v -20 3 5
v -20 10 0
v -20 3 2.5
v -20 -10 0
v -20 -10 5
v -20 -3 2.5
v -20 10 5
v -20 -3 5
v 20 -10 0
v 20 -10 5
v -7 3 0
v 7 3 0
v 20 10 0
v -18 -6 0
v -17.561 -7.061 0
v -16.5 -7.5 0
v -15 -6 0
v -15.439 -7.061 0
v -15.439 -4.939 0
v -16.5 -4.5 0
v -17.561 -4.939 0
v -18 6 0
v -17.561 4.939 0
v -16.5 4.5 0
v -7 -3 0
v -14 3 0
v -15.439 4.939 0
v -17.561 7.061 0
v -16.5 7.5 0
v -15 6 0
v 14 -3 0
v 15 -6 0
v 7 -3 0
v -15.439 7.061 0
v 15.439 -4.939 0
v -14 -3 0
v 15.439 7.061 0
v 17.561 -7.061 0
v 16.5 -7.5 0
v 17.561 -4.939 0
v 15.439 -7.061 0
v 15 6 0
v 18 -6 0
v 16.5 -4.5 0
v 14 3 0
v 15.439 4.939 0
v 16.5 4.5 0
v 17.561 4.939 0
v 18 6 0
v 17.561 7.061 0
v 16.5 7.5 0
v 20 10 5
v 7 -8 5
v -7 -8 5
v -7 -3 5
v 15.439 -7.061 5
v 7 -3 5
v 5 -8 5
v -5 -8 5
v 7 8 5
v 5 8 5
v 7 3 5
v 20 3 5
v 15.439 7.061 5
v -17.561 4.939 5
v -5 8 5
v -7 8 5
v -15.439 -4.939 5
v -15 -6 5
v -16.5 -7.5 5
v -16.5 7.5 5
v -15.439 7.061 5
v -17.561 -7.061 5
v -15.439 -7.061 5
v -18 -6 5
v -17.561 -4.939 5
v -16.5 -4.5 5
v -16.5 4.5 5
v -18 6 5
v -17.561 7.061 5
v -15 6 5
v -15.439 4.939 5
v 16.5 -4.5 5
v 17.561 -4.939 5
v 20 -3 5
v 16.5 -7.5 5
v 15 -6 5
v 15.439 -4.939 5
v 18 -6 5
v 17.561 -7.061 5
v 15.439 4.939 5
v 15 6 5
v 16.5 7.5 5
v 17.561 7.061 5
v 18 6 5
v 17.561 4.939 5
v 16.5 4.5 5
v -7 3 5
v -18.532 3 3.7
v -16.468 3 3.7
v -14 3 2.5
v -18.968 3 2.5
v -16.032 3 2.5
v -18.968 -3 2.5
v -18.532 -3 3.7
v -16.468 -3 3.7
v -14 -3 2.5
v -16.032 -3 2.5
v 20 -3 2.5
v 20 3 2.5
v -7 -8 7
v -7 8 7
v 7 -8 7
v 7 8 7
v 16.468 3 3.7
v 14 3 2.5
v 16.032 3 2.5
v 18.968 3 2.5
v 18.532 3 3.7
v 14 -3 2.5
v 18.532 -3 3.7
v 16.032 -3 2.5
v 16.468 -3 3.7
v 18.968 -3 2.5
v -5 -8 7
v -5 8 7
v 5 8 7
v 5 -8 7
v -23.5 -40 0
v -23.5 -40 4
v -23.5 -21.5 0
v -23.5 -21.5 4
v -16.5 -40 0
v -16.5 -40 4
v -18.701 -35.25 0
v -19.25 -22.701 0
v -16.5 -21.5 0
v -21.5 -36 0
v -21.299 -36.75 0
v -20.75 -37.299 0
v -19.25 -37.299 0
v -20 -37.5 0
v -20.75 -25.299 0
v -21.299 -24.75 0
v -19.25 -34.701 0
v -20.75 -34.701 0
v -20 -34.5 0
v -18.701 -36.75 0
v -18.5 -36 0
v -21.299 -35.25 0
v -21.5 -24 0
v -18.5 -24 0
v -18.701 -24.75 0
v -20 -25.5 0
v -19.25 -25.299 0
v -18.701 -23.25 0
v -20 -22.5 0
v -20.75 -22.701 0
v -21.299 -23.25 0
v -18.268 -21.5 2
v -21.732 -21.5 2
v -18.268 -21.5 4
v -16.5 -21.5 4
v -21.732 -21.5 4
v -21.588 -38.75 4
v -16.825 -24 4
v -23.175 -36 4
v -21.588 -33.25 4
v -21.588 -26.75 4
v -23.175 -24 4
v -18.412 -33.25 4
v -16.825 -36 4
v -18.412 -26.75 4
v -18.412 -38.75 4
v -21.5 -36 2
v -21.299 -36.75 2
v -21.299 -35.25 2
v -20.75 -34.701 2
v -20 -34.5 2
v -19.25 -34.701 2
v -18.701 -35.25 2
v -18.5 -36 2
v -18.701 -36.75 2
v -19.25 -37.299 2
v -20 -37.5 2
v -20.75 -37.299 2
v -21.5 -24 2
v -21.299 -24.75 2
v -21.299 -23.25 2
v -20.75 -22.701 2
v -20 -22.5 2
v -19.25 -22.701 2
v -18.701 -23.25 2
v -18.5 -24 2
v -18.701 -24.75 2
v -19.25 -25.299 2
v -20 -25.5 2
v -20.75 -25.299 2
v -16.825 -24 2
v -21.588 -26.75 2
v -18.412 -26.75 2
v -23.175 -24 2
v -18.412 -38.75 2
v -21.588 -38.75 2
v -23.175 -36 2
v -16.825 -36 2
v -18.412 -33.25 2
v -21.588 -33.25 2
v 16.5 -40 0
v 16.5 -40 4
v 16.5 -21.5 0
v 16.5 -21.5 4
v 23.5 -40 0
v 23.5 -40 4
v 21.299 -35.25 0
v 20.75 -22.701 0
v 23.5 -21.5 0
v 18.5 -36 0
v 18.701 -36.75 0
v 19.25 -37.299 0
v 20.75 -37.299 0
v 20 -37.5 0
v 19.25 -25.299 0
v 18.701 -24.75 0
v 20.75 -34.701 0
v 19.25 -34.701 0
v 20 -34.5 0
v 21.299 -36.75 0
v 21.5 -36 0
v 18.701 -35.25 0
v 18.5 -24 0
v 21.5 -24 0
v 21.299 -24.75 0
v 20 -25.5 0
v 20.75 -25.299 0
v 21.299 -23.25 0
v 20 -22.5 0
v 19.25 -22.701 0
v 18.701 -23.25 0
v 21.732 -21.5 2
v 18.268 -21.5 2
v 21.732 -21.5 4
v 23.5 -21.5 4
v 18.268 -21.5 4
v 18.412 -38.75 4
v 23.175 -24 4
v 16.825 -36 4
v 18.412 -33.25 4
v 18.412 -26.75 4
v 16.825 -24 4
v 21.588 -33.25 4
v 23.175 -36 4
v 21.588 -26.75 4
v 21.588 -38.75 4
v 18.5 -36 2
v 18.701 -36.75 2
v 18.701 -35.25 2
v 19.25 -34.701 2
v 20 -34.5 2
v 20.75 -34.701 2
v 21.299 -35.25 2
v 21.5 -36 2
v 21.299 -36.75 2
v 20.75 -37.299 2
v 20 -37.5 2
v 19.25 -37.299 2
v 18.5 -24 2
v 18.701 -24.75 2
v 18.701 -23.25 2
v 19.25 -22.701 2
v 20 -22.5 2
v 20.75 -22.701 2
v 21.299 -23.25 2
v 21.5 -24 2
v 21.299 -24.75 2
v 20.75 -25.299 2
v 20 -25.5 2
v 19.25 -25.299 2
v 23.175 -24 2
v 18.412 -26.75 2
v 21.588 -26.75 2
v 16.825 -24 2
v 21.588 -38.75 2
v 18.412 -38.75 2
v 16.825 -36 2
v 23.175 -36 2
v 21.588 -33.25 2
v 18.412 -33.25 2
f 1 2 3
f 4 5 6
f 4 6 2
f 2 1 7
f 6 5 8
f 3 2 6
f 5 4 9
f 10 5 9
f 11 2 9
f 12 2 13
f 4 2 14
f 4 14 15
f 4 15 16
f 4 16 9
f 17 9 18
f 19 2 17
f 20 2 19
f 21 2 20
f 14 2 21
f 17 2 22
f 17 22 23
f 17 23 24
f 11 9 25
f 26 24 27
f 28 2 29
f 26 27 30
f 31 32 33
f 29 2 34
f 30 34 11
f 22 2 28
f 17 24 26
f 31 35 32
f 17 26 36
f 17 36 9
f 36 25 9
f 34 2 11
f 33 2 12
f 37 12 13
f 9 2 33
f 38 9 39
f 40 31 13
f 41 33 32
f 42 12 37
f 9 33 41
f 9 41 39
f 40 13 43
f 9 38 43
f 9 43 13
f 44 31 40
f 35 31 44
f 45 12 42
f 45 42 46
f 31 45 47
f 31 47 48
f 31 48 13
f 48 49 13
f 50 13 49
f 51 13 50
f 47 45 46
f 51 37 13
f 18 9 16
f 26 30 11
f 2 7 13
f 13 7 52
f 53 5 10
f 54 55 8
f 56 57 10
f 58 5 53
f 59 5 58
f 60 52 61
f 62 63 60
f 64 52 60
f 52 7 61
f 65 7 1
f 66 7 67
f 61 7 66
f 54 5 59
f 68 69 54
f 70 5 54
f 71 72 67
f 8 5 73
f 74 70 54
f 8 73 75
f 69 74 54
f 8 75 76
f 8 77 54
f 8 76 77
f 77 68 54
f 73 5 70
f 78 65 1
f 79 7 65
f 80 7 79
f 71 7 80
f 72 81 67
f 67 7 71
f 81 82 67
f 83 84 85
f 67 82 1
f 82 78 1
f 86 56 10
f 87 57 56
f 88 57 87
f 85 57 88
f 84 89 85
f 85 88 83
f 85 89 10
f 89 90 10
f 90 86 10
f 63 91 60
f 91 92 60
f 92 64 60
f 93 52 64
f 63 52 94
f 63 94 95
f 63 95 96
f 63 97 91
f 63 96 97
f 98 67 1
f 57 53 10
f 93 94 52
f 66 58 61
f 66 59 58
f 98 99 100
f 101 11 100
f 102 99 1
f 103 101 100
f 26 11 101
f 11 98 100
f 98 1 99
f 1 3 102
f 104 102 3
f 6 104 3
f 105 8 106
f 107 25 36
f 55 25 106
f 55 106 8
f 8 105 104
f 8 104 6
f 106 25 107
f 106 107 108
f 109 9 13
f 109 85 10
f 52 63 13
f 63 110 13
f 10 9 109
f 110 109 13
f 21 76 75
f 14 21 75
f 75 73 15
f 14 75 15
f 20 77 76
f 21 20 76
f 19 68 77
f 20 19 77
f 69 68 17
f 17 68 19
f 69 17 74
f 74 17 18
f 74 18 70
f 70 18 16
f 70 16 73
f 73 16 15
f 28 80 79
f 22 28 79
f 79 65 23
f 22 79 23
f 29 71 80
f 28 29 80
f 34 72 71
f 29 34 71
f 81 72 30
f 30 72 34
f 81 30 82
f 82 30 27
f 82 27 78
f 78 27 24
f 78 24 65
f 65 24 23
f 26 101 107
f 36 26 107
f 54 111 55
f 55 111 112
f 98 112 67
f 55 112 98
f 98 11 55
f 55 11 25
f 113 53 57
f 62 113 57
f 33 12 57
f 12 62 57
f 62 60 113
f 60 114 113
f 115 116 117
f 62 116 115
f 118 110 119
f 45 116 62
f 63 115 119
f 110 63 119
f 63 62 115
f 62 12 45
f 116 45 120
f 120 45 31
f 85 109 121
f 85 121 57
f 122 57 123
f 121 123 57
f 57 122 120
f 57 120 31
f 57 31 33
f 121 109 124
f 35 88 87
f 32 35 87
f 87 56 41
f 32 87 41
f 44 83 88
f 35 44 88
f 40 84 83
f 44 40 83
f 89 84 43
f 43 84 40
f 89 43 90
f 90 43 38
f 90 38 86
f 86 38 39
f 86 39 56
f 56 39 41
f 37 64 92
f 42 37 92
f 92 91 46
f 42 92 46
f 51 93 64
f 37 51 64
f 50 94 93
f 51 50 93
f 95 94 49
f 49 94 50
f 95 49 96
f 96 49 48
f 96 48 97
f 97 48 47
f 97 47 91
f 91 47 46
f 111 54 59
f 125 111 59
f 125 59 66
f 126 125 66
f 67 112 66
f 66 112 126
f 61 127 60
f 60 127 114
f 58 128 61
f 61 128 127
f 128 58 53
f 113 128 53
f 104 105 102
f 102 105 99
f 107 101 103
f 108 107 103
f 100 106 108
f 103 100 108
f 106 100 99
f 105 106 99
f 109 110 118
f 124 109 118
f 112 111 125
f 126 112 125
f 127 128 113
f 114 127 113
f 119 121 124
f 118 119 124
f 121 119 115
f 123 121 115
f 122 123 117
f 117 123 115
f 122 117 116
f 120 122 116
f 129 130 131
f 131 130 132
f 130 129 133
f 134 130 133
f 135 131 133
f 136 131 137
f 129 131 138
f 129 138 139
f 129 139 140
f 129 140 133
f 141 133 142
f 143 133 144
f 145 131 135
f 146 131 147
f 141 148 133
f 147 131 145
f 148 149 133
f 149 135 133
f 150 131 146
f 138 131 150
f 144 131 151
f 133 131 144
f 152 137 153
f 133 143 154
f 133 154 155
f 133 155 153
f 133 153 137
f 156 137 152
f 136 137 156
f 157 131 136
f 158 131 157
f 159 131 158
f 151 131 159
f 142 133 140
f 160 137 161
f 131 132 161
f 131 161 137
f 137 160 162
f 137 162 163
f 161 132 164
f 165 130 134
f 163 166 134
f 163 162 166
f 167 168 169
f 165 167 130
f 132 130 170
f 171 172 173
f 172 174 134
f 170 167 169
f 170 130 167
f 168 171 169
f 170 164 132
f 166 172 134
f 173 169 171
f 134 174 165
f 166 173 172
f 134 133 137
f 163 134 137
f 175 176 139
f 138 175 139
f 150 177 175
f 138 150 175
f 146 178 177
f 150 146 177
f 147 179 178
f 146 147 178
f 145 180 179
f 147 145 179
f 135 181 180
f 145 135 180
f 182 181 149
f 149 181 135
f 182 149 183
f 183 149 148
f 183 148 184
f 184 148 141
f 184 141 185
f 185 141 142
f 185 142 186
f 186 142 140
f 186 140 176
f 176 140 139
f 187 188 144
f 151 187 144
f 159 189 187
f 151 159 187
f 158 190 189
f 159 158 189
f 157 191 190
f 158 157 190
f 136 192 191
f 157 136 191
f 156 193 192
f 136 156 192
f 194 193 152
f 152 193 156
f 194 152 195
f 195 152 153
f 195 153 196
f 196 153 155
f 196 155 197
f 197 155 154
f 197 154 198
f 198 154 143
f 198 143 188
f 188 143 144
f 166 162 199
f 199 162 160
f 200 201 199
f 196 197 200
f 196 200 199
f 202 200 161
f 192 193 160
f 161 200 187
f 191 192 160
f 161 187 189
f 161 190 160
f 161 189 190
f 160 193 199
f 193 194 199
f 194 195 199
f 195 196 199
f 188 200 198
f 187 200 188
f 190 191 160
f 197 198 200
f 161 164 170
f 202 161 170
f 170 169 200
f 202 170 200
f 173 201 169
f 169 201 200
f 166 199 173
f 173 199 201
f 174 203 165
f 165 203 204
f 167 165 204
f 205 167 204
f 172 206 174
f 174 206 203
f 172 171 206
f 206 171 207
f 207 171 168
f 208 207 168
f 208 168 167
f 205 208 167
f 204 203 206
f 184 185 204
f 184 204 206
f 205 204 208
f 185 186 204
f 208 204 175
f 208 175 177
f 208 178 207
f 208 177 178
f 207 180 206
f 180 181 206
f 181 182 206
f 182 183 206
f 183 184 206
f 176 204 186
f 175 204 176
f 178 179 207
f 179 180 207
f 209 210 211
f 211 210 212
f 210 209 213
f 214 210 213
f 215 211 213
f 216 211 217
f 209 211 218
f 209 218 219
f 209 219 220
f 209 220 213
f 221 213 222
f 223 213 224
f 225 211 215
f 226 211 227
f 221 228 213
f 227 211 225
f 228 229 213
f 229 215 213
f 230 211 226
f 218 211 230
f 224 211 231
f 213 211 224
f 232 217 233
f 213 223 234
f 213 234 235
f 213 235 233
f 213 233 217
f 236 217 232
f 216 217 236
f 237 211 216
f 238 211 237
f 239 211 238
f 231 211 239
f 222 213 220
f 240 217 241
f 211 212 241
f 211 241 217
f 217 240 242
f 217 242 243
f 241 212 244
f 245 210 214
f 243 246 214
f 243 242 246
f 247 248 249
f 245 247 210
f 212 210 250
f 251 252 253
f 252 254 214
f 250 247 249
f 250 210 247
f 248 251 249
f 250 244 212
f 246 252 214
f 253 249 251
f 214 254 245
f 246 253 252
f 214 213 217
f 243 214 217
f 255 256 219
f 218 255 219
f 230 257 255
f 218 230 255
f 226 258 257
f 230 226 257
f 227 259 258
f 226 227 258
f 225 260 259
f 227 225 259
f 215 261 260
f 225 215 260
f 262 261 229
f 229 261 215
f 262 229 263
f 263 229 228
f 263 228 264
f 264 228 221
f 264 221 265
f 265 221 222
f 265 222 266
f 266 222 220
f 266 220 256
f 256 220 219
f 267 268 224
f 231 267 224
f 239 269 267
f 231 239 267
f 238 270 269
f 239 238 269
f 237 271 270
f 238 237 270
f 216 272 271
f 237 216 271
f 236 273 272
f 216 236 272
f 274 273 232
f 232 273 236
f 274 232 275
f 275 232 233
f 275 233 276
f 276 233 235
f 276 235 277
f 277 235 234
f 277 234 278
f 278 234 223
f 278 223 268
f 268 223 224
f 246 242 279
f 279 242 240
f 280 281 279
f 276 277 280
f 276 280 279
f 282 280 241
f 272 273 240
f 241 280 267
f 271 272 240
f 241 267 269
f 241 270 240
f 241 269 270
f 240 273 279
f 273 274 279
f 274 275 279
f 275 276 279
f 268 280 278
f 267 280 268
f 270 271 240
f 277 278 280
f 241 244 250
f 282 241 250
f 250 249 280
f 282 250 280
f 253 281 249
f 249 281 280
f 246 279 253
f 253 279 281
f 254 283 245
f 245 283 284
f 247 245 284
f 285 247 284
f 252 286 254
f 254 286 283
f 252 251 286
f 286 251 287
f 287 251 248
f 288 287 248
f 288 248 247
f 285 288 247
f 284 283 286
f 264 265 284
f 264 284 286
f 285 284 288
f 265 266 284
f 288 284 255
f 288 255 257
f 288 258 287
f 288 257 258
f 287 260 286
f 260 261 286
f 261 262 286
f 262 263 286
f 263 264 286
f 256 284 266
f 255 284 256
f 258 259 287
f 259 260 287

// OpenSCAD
// file: ../ShapeLibrary/CounterSink.scad
// Vertical countersink with top of countersink centred on origin 
//
// od = overall diameter (for screw head)
// oh = overall height (screw + head +recesss)
// sd = screw diameter
// sh = screw height (to top of countersink)
module countersinkZ(od, oh, sd, sh)
{
    union()
    {
        intersection()
	    {
            translate([0,0,-sh]) cylinder(r=od/2, h=oh, $fn=12);
            translate([0,0,-od/2]) cylinder(r1=0, r2=oh+od/2, h=oh+od/2, $fn=12);
        }
    translate([0,0,-sh]) cylinder(r=sd/2, h=sh, $fn=12);
    }
}

// Countersink with screw directed along negative X-axis
module countersinkX(od, oh, sd, sh)
{
    rotate([0,90,0]) countersinkZ(od, oh, sd, sh);
}

// Countersink with screw directed along negative Y-axis
module countersinkY(od, oh, sd, sh)
{
    rotate([90,0,0]) countersinkZ(od, oh, sd, sh);
}


// Examples
countersinkZ(8, 20, 4, 10);

translate([0,15,0]) countersinkX(8, 20, 4, 10);

translate([15,0,0]) countersinkY(8, 20, 4, 10);
// file: ../ShapeLibrary/NutRecessNoCS.scad
// Vertical nut recess with base of nut centred on origin 
//
// af = nut size accross faces
// oh = overall height (screw + head + recesss)
// sd = screw diameter
// sh = screw height (to shoulder of nut recess)
module nutrecessZ(od, oh, sd, sh)
{
  sin60 = sin(60);
  union()
  {
    // % translate([0,0,oh-sh]) cylinder(r=od/sin60/2, h=5, $fn=12);
    // Square shoulder...
    //cylinder(r=od/sin60/2, h=oh-sh, $fn=6);
    // Angle shoulder at 45deg for printing...
    intersection()
    {
        translate([0,0,0]) cylinder(r=od/sin60/2, h=oh-sh, $fn=6);
        //translate([0,0,-((od/2)-(sd/2))/2])
        //  cylinder(r1=sd/2, r2=sd/2+(oh-sh), h=oh-sh, $fn=12);
    }
    translate([0,0,-sh]) cylinder(r=sd/2, h=oh, $fn=12);
  }
}

// Nut recess with screw directed along negative X-axis
module nutrecessX(od, oh, sd, sh)
{
    rotate([0,90,0]) nutrecessZ(od, oh, sd, sh);
}

// Nut recess with screw directed along negative Y-axis
module nutrecessY(od, oh, sd, sh)
{
    rotate([90,0,0]) nutrecessZ(od, oh, sd, sh);
}


// Examples
nutrecessZ(7, 20, 4, 10);

translate([0,15,0]) nutrecessX(7, 20, 4, 10);

translate([15,0,0]) nutrecessY(7, 20, 4, 10);
// main file
// Drive belt connector

use <../ShapeLibrary/NutRecessNoCS.scad>
use <../ShapeLibrary/CounterSink.scad>

// Tooth profile, tooth centred on origin
//
// p = pitch (tooth is half this)
// w = width
// h = height of tooth (extra is added at base)
// a = angle of tooth face
//
module Tooth(p, w, h, a)
{
    d = 0.1;
    difference()
    {
        translate([0,0,d/2])
            cube(size=[p, w, h+d], center=true);
        translate([p/4,0,0])
            rotate([0,a,0])
                translate([p/2,0,0])
                    cube(size=[p, w*2, h*4], center=true);
        translate([-p/4,0,0])
            rotate([0,-a,0])
                translate([-p/2,0,0])
                    cube(size=[p, w*2, h*4], center=true);
    }
}

//Tooth(5, 6, 1.2, 20);

// Tooth profile section of length l and width w, 
// Aligned with and centred on X axis, with teeth downwards
// touching X-Y plane
// can be subtracted from object to leave tooth profile.
//
// Per http://www.contitech.de/pages/produkte/antriebsriemen/antrieb-industrie/download/TD_Synchroflex_en.pdf
//   Tooth pitch = 5
//   Tooth andgle between faces = 40%
//   Tooth height = 1.2
//
module ToothProfileX(l, w)
{
    tp = 5;
    th = 1.2;
    ta = 20;
    translate([-l/2-tp/4, -w/2, th]) cube(size=[l+tp/2, w, 10]);
    for ( to = [ -l/2 : tp : l/2 ] )
    {
        translate([to,0,th/2]) Tooth(tp,w,th,ta);
    }
}

//ToothProfileX(80, 6);

// Belt connector base, aligned with X axis
//
// l   = overall length
// w   = overall width
// d   = overall thickness (depth)
// l1  = length attachment prong
// l2  = length locating ridge
// l3  = length belt hole 
// bw  = belt width
// bd  = belt depth (to extent of teeth)
// hpx = hole pitch X
// hpy = hole pitch Y
// hd  = hole diameter (countersink width twice this)
// naf = nut across faces size
// nt  = nut thickness
//
module BeltConnectorBase(l, w, d,  l1, l2, l3, bw, bd,  hpx, hpy, hd,  naf, nt)
{
    union()
    {
        difference()
        {
            translate([-l/2, -w/2, 0]) cube(size=[l, w, d]);
            translate([0,0,d-bd]) ToothProfileX(l, bw);
            for ( xo = [-(l1/2+l2)-l3, (l1/2+l2)] )
                {
                    translate([xo, -bw/2, -d/2])
                    {
                        cube(size=[l3,bw,d*2]);
                    }
                }
            for ( xo = [-hpx/2, hpx/2])
            {
                for ( yo = [-hpy/2, hpy/2] )
                {
                    translate([xo, yo, -d/2])
                        cylinder(r=hd/2, h=d*2, $fn=8) ;
            //        translate([xo, yo, nt])
            //            mirror([0,0,1])
            //                nutrecessZ(naf, d*3, 3, d*2);
                }
            }
        }
        translate([-l1/2-l2,-w/2, 0])
            cube(size=[l1+l2+l2, w, d]) ;
        for ( xo =[-l1/2-l2, l1/2] )
            translate([xo,-w/2+2,0])
                cube(size=[l2, w-4, d+l2]) ;
    }
}

// Belt connector clamping piece
//
// l   = overall length
// w   = overall width
// d   = overall thickness (depth)
// hpy = hole pitch Y
// hd  = hole diameter (countersink width twice this)
// nt  = nut thickness
//
module BeltConnectorClamp(l, w, d, hpy, hd, naf, nt)
{
    difference()
    {
        translate([-l/2, -w/2, 0]) cube(size=[l, w-1.5, d]);
        for ( yo = [-hpy/2, hpy/2] )
        {
            //translate([0, yo, d]) 
            //    countersinkZ(6, d*3, 3, d*2);
            for ( yo = [-hpy/2, hpy/2] )
                translate([0, yo, nt]) 
                    nutrecessZ(naf, d*3, 3, d*2);
        }
    }
}

BeltConnectorBase(40, 20, 5,   10, 2, 7,   6, 2.5,   33, 12, 3,   5.5, 2);

for ( xo = [ -20, 20 ] )
{
    translate([xo, -30, 0]) 
        BeltConnectorClamp(7, 20, 4,  12, 3, 5.5, 2);
} 
